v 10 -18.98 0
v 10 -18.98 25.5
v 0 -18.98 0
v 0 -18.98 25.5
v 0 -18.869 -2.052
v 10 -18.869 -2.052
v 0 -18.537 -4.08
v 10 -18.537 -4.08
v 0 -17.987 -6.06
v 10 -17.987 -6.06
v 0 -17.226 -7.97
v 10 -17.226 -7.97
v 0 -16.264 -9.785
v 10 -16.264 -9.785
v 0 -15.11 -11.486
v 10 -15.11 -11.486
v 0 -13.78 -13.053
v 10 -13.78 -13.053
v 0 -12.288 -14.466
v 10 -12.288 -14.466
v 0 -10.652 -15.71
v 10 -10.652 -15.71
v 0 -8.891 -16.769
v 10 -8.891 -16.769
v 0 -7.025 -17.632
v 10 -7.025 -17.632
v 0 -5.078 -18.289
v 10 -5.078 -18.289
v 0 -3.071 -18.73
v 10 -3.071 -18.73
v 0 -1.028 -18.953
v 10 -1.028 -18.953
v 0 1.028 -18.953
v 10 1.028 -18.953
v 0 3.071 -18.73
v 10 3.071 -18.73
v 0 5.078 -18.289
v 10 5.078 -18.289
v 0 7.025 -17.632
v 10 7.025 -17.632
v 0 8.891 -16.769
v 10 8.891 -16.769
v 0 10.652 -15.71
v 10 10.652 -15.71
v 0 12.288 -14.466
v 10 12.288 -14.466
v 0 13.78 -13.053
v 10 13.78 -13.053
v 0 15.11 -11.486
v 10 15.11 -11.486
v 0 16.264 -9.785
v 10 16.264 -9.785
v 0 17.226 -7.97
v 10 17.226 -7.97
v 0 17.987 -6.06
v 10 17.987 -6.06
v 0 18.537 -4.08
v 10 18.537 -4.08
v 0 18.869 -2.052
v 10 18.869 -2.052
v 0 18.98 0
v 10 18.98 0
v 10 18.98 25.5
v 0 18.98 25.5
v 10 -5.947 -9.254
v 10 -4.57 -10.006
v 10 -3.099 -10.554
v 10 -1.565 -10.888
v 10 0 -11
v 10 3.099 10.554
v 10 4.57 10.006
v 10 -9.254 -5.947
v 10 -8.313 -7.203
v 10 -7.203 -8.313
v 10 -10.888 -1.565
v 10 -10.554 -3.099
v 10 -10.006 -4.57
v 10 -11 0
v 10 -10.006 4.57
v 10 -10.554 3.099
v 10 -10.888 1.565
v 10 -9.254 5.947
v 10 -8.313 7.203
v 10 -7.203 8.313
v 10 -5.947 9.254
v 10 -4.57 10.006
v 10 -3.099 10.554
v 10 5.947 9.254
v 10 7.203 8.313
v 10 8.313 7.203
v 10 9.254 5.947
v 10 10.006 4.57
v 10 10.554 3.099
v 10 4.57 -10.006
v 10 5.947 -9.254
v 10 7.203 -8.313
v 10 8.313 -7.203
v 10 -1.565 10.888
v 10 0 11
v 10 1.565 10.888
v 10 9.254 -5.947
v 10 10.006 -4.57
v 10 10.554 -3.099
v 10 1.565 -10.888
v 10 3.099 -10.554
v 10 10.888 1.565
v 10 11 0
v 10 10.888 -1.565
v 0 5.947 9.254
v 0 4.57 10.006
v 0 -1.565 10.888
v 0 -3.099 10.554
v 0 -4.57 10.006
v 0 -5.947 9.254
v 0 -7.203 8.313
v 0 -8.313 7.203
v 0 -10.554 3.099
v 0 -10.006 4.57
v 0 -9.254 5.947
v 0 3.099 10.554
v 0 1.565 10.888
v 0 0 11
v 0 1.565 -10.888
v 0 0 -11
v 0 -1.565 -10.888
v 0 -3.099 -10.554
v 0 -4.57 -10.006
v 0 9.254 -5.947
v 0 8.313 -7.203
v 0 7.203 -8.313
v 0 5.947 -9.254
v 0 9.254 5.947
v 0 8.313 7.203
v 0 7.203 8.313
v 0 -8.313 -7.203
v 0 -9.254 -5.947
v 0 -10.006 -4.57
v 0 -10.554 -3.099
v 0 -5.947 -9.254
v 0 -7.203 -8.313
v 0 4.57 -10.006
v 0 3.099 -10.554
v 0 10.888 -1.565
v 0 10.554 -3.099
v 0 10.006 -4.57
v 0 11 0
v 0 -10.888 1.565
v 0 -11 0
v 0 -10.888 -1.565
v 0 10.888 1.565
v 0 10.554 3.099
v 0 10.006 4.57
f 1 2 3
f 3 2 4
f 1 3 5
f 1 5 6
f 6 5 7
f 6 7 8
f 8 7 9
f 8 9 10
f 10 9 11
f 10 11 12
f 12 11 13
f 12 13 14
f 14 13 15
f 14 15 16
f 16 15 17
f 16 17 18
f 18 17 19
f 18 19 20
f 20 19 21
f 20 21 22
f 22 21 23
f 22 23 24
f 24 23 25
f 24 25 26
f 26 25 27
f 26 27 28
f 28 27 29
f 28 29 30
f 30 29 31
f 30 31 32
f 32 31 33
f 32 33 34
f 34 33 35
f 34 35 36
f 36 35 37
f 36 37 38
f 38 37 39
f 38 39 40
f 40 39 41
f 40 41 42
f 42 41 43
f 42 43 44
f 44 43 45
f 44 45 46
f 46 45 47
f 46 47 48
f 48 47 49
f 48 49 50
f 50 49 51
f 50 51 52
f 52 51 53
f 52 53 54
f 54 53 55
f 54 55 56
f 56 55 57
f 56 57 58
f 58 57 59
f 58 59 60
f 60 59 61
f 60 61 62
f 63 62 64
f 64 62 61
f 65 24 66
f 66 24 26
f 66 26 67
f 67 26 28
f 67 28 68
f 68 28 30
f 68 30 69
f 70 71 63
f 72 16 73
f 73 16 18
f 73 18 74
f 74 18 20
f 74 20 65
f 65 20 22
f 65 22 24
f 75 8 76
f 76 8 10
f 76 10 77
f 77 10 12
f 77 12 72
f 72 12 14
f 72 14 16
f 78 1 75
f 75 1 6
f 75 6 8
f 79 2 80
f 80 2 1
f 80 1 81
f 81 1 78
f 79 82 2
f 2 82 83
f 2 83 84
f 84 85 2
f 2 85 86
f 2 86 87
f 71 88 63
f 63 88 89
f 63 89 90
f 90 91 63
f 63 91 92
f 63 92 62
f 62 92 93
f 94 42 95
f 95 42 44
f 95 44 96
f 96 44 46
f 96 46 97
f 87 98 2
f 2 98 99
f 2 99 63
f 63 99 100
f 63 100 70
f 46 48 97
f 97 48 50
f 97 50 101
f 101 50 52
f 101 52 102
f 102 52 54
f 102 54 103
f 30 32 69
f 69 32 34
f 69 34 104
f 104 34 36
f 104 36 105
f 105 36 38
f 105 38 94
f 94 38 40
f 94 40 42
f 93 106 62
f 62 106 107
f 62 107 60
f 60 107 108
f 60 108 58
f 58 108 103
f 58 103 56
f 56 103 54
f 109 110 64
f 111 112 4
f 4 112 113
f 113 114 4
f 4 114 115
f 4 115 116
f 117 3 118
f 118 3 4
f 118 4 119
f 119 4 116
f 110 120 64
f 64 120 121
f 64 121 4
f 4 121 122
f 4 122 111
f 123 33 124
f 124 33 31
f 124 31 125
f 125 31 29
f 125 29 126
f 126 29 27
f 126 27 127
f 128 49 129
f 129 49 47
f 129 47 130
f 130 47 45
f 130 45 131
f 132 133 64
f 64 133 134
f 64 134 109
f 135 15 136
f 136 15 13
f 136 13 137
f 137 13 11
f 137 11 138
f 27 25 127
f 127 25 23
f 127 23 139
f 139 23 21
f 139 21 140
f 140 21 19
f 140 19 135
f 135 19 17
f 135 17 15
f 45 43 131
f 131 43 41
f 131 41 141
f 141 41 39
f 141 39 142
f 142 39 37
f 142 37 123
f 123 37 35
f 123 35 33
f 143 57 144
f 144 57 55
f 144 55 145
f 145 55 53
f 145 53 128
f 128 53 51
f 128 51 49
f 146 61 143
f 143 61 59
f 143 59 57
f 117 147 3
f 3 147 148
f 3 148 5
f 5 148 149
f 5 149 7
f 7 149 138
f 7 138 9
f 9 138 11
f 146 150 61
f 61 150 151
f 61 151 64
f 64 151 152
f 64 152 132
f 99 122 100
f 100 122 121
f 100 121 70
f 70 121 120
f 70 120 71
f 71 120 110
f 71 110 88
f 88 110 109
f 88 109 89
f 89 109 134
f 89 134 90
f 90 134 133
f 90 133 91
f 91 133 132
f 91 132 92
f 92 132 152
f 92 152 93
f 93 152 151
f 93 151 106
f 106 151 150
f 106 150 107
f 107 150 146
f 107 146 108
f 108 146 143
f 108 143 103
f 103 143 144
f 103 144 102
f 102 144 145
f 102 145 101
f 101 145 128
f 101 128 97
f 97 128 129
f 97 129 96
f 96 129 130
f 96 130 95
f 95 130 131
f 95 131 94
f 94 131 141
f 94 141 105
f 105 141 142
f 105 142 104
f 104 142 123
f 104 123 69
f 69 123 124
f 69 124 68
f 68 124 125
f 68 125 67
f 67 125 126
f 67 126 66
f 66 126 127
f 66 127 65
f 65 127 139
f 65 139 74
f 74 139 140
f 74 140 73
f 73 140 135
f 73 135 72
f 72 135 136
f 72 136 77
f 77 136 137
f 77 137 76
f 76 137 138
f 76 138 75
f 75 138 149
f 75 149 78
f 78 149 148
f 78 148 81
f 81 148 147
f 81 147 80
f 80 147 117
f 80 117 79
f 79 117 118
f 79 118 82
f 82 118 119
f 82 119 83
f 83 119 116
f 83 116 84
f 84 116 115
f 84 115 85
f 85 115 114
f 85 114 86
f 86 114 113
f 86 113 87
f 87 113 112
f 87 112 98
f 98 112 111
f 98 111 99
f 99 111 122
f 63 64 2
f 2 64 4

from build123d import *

# Parameters (mm, degrees)
BOSS_EXTRUDE1_DEPTH = 10
SKETCH2_R           = 11
CUT_EXTRUDE1_DEPTH  = 10
BOSS_EXTRUDE2_START = -37.960973
SKETCH3_W           = 10
SKETCH3_H           = 2
BOSS_EXTRUDE2_DEPTH = 37.960973


with BuildPart() as part:
    # Sketch1 → Boss-Extrude1 (new body)
    with BuildSketch(Plane(origin=(0, 0, 0), x_dir=(0, 0, -1), z_dir=(1, 0, 0))):
        with BuildLine():
            Line((-23.5, 18.980486252), (0, 18.980486252))
            ThreePointArc((0, 18.980486252), (18.980486252, 0), (0, -18.980486252))
            Line((0, -18.980486252), (-23.5, -18.980486252))
            Line((-23.5, -18.980486252), (-23.5, 18.980486252))
        make_face()
    extrude(amount=BOSS_EXTRUDE1_DEPTH)

    # Sketch2 → Cut-Extrude1 (cut)
    with BuildSketch(Plane.ZY):
        Circle(SKETCH2_R)
    extrude(amount=-CUT_EXTRUDE1_DEPTH, mode=Mode.SUBTRACT)

    # Sketch3 → Boss-Extrude2 (add)
    with BuildSketch(Plane(origin=(0, 18.980486252, 0), x_dir=(1, 0, 0), z_dir=(0, 1, 0)).offset(BOSS_EXTRUDE2_START)):
        with Locations((5, -24.5)):
            Rectangle(SKETCH3_W, SKETCH3_H)
    extrude(amount=BOSS_EXTRUDE2_DEPTH)


solid = part.part
